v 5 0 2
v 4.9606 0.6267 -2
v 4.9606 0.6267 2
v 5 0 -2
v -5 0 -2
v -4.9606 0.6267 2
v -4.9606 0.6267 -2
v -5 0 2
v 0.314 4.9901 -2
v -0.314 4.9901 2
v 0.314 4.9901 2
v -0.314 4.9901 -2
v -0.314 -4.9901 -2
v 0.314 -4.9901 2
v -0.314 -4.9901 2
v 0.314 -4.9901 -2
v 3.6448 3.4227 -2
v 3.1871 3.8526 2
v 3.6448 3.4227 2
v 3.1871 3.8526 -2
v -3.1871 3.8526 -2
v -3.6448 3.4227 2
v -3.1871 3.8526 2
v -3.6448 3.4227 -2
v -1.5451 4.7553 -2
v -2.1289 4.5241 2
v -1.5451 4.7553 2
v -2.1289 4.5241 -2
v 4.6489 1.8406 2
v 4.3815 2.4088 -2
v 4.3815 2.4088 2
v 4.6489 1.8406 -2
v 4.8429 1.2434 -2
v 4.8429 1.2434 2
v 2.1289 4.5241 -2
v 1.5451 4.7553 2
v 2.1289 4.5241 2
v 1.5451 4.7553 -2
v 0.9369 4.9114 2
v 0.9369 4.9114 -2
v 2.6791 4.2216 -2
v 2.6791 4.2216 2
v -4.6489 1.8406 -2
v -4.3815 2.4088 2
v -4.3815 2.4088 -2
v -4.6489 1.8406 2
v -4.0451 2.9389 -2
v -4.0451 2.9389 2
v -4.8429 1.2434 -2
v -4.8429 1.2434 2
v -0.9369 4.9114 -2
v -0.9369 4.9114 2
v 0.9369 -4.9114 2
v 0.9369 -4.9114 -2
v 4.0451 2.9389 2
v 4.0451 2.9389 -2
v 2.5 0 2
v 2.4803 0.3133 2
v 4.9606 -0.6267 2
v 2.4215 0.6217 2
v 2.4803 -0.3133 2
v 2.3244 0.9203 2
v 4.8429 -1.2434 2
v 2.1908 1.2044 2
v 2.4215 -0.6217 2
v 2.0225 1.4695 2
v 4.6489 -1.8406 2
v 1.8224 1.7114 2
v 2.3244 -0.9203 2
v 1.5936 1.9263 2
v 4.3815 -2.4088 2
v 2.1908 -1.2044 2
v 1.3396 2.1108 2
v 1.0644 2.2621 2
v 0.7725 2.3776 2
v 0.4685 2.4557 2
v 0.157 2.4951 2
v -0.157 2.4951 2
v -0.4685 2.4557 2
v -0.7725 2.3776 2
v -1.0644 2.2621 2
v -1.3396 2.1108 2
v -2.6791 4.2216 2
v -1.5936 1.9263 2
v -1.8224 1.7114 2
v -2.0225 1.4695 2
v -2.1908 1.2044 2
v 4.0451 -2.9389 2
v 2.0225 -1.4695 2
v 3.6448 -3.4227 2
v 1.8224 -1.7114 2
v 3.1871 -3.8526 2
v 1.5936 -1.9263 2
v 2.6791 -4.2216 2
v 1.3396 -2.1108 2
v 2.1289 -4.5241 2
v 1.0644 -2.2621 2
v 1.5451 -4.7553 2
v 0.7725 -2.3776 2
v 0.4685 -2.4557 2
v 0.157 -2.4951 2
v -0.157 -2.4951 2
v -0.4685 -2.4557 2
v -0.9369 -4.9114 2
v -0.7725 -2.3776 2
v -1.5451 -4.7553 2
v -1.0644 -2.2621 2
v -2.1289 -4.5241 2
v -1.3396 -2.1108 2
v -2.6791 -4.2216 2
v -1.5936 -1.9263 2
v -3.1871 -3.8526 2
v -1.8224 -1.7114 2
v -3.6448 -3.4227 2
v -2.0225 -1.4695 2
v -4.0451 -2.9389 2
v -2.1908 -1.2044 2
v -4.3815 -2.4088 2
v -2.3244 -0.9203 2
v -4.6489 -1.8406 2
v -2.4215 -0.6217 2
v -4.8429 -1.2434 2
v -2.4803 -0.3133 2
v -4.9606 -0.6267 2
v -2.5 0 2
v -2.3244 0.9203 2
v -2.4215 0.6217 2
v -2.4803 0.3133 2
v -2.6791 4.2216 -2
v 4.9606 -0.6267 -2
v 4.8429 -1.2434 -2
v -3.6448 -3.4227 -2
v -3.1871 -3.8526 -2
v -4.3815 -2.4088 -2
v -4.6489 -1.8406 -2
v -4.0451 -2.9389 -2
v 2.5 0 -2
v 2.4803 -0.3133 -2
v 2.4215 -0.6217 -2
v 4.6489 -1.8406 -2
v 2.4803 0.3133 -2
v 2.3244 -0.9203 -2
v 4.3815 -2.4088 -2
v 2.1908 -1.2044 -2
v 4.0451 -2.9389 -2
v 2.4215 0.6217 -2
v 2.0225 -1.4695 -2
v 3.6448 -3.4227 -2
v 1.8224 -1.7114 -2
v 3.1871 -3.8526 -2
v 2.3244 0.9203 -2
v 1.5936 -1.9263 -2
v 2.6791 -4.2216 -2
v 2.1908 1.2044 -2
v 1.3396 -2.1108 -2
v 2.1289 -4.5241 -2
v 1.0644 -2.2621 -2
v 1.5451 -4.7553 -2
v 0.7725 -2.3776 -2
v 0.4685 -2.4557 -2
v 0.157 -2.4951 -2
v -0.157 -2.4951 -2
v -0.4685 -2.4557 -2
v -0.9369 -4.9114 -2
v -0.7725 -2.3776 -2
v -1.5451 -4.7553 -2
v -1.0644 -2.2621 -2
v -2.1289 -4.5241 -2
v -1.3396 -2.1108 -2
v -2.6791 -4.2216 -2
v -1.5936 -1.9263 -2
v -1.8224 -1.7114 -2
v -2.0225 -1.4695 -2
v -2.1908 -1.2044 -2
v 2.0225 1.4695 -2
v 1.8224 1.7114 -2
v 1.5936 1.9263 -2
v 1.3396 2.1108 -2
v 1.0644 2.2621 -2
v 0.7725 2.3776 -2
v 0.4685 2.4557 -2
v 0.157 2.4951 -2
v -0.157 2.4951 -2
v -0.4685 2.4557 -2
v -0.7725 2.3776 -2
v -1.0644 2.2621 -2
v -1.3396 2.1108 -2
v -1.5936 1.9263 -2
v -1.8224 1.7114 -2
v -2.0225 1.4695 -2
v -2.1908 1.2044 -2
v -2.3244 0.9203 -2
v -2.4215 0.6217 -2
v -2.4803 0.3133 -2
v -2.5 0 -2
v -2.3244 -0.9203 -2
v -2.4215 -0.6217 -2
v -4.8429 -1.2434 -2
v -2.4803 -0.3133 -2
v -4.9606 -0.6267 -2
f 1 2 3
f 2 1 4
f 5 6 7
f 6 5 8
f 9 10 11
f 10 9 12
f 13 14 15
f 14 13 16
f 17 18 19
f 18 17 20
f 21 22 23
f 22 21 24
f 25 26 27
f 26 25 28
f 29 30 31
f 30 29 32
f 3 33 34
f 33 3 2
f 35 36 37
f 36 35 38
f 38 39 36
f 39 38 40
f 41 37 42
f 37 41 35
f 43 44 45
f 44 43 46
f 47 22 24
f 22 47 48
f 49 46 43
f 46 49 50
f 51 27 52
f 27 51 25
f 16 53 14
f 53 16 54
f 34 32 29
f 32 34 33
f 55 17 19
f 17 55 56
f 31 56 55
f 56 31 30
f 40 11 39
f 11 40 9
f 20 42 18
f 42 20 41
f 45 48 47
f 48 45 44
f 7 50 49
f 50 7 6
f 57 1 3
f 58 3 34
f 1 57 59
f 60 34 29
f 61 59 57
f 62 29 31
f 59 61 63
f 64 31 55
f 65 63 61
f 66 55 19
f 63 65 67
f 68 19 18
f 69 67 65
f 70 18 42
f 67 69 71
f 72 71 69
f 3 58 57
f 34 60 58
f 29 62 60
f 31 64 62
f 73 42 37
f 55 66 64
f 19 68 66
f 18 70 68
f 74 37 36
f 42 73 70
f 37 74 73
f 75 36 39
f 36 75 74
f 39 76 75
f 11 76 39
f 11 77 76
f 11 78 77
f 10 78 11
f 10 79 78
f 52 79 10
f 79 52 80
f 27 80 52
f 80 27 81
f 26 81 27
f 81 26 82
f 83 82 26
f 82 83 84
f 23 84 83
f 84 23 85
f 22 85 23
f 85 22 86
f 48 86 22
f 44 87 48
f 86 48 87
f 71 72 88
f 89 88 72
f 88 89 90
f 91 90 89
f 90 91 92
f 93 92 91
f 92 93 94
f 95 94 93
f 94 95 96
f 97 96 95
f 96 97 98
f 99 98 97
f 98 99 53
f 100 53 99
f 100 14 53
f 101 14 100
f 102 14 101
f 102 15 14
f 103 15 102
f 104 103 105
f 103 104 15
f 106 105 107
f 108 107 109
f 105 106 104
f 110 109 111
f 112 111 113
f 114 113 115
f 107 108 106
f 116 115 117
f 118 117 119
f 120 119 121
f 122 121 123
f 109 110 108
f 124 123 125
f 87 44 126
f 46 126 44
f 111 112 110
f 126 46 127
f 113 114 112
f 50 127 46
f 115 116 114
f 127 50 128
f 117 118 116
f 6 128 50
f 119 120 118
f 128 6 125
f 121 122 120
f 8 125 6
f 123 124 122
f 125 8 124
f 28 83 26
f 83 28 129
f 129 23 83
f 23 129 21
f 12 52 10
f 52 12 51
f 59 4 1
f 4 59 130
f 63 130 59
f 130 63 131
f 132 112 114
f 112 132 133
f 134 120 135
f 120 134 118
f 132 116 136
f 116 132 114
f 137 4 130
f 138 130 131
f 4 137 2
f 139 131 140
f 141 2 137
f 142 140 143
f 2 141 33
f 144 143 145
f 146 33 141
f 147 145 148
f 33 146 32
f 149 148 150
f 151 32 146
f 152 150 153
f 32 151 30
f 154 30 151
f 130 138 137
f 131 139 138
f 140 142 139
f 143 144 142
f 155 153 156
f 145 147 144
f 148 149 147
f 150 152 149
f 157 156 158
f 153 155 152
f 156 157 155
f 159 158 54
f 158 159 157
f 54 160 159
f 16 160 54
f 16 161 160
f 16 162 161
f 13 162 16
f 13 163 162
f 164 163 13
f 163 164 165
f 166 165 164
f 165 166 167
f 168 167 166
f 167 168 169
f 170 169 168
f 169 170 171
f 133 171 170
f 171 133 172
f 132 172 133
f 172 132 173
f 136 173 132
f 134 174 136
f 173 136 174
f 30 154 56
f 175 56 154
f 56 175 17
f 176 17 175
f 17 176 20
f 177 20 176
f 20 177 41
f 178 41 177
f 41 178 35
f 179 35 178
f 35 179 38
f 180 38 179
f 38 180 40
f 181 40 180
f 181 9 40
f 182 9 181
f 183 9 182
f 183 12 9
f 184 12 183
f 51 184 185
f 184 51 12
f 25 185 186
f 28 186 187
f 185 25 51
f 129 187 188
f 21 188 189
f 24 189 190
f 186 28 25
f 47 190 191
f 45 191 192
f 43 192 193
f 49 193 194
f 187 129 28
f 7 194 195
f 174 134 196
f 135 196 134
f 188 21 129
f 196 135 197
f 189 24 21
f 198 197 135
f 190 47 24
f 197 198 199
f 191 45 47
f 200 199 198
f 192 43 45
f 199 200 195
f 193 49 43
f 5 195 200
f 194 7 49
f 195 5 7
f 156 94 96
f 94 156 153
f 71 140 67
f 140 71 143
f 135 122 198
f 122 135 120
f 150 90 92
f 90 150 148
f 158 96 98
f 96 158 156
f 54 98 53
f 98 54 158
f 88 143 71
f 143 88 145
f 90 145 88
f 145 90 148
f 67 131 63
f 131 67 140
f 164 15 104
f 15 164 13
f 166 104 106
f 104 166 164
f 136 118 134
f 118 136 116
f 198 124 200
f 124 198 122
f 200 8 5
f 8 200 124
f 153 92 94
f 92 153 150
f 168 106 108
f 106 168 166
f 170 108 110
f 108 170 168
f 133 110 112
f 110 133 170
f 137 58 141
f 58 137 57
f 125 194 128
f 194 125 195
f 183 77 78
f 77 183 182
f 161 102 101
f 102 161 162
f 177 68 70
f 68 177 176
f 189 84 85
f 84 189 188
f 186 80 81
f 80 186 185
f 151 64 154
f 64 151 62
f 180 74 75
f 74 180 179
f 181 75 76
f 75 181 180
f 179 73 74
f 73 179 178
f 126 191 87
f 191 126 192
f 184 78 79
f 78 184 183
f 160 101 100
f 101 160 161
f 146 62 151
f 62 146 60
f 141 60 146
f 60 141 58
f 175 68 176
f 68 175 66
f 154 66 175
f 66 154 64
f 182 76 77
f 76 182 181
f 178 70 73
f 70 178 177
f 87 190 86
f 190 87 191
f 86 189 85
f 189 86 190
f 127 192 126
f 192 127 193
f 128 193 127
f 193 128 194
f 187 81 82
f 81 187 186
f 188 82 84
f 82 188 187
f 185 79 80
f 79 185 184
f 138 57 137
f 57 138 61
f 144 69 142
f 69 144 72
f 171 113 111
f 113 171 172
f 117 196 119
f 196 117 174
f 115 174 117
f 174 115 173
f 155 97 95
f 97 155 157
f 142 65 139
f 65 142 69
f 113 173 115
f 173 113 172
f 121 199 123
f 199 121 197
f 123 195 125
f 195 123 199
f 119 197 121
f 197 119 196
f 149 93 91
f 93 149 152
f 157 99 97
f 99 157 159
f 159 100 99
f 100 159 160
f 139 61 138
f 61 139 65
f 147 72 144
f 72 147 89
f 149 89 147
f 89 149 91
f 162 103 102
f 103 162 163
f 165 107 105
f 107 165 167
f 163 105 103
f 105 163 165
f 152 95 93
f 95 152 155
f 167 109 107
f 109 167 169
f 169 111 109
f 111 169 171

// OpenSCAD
$fn = 50;


difference() {
	union() {
		translate(v = [0, 0, -2.0000000000]) {
			cylinder(h = 4, r = 5.0000000000);
		}
	}
	union() {
		translate(v = [0, 0, -100.0000000000]) {
			cylinder(h = 200, r = 2.5000000000);
		}
	}
}
